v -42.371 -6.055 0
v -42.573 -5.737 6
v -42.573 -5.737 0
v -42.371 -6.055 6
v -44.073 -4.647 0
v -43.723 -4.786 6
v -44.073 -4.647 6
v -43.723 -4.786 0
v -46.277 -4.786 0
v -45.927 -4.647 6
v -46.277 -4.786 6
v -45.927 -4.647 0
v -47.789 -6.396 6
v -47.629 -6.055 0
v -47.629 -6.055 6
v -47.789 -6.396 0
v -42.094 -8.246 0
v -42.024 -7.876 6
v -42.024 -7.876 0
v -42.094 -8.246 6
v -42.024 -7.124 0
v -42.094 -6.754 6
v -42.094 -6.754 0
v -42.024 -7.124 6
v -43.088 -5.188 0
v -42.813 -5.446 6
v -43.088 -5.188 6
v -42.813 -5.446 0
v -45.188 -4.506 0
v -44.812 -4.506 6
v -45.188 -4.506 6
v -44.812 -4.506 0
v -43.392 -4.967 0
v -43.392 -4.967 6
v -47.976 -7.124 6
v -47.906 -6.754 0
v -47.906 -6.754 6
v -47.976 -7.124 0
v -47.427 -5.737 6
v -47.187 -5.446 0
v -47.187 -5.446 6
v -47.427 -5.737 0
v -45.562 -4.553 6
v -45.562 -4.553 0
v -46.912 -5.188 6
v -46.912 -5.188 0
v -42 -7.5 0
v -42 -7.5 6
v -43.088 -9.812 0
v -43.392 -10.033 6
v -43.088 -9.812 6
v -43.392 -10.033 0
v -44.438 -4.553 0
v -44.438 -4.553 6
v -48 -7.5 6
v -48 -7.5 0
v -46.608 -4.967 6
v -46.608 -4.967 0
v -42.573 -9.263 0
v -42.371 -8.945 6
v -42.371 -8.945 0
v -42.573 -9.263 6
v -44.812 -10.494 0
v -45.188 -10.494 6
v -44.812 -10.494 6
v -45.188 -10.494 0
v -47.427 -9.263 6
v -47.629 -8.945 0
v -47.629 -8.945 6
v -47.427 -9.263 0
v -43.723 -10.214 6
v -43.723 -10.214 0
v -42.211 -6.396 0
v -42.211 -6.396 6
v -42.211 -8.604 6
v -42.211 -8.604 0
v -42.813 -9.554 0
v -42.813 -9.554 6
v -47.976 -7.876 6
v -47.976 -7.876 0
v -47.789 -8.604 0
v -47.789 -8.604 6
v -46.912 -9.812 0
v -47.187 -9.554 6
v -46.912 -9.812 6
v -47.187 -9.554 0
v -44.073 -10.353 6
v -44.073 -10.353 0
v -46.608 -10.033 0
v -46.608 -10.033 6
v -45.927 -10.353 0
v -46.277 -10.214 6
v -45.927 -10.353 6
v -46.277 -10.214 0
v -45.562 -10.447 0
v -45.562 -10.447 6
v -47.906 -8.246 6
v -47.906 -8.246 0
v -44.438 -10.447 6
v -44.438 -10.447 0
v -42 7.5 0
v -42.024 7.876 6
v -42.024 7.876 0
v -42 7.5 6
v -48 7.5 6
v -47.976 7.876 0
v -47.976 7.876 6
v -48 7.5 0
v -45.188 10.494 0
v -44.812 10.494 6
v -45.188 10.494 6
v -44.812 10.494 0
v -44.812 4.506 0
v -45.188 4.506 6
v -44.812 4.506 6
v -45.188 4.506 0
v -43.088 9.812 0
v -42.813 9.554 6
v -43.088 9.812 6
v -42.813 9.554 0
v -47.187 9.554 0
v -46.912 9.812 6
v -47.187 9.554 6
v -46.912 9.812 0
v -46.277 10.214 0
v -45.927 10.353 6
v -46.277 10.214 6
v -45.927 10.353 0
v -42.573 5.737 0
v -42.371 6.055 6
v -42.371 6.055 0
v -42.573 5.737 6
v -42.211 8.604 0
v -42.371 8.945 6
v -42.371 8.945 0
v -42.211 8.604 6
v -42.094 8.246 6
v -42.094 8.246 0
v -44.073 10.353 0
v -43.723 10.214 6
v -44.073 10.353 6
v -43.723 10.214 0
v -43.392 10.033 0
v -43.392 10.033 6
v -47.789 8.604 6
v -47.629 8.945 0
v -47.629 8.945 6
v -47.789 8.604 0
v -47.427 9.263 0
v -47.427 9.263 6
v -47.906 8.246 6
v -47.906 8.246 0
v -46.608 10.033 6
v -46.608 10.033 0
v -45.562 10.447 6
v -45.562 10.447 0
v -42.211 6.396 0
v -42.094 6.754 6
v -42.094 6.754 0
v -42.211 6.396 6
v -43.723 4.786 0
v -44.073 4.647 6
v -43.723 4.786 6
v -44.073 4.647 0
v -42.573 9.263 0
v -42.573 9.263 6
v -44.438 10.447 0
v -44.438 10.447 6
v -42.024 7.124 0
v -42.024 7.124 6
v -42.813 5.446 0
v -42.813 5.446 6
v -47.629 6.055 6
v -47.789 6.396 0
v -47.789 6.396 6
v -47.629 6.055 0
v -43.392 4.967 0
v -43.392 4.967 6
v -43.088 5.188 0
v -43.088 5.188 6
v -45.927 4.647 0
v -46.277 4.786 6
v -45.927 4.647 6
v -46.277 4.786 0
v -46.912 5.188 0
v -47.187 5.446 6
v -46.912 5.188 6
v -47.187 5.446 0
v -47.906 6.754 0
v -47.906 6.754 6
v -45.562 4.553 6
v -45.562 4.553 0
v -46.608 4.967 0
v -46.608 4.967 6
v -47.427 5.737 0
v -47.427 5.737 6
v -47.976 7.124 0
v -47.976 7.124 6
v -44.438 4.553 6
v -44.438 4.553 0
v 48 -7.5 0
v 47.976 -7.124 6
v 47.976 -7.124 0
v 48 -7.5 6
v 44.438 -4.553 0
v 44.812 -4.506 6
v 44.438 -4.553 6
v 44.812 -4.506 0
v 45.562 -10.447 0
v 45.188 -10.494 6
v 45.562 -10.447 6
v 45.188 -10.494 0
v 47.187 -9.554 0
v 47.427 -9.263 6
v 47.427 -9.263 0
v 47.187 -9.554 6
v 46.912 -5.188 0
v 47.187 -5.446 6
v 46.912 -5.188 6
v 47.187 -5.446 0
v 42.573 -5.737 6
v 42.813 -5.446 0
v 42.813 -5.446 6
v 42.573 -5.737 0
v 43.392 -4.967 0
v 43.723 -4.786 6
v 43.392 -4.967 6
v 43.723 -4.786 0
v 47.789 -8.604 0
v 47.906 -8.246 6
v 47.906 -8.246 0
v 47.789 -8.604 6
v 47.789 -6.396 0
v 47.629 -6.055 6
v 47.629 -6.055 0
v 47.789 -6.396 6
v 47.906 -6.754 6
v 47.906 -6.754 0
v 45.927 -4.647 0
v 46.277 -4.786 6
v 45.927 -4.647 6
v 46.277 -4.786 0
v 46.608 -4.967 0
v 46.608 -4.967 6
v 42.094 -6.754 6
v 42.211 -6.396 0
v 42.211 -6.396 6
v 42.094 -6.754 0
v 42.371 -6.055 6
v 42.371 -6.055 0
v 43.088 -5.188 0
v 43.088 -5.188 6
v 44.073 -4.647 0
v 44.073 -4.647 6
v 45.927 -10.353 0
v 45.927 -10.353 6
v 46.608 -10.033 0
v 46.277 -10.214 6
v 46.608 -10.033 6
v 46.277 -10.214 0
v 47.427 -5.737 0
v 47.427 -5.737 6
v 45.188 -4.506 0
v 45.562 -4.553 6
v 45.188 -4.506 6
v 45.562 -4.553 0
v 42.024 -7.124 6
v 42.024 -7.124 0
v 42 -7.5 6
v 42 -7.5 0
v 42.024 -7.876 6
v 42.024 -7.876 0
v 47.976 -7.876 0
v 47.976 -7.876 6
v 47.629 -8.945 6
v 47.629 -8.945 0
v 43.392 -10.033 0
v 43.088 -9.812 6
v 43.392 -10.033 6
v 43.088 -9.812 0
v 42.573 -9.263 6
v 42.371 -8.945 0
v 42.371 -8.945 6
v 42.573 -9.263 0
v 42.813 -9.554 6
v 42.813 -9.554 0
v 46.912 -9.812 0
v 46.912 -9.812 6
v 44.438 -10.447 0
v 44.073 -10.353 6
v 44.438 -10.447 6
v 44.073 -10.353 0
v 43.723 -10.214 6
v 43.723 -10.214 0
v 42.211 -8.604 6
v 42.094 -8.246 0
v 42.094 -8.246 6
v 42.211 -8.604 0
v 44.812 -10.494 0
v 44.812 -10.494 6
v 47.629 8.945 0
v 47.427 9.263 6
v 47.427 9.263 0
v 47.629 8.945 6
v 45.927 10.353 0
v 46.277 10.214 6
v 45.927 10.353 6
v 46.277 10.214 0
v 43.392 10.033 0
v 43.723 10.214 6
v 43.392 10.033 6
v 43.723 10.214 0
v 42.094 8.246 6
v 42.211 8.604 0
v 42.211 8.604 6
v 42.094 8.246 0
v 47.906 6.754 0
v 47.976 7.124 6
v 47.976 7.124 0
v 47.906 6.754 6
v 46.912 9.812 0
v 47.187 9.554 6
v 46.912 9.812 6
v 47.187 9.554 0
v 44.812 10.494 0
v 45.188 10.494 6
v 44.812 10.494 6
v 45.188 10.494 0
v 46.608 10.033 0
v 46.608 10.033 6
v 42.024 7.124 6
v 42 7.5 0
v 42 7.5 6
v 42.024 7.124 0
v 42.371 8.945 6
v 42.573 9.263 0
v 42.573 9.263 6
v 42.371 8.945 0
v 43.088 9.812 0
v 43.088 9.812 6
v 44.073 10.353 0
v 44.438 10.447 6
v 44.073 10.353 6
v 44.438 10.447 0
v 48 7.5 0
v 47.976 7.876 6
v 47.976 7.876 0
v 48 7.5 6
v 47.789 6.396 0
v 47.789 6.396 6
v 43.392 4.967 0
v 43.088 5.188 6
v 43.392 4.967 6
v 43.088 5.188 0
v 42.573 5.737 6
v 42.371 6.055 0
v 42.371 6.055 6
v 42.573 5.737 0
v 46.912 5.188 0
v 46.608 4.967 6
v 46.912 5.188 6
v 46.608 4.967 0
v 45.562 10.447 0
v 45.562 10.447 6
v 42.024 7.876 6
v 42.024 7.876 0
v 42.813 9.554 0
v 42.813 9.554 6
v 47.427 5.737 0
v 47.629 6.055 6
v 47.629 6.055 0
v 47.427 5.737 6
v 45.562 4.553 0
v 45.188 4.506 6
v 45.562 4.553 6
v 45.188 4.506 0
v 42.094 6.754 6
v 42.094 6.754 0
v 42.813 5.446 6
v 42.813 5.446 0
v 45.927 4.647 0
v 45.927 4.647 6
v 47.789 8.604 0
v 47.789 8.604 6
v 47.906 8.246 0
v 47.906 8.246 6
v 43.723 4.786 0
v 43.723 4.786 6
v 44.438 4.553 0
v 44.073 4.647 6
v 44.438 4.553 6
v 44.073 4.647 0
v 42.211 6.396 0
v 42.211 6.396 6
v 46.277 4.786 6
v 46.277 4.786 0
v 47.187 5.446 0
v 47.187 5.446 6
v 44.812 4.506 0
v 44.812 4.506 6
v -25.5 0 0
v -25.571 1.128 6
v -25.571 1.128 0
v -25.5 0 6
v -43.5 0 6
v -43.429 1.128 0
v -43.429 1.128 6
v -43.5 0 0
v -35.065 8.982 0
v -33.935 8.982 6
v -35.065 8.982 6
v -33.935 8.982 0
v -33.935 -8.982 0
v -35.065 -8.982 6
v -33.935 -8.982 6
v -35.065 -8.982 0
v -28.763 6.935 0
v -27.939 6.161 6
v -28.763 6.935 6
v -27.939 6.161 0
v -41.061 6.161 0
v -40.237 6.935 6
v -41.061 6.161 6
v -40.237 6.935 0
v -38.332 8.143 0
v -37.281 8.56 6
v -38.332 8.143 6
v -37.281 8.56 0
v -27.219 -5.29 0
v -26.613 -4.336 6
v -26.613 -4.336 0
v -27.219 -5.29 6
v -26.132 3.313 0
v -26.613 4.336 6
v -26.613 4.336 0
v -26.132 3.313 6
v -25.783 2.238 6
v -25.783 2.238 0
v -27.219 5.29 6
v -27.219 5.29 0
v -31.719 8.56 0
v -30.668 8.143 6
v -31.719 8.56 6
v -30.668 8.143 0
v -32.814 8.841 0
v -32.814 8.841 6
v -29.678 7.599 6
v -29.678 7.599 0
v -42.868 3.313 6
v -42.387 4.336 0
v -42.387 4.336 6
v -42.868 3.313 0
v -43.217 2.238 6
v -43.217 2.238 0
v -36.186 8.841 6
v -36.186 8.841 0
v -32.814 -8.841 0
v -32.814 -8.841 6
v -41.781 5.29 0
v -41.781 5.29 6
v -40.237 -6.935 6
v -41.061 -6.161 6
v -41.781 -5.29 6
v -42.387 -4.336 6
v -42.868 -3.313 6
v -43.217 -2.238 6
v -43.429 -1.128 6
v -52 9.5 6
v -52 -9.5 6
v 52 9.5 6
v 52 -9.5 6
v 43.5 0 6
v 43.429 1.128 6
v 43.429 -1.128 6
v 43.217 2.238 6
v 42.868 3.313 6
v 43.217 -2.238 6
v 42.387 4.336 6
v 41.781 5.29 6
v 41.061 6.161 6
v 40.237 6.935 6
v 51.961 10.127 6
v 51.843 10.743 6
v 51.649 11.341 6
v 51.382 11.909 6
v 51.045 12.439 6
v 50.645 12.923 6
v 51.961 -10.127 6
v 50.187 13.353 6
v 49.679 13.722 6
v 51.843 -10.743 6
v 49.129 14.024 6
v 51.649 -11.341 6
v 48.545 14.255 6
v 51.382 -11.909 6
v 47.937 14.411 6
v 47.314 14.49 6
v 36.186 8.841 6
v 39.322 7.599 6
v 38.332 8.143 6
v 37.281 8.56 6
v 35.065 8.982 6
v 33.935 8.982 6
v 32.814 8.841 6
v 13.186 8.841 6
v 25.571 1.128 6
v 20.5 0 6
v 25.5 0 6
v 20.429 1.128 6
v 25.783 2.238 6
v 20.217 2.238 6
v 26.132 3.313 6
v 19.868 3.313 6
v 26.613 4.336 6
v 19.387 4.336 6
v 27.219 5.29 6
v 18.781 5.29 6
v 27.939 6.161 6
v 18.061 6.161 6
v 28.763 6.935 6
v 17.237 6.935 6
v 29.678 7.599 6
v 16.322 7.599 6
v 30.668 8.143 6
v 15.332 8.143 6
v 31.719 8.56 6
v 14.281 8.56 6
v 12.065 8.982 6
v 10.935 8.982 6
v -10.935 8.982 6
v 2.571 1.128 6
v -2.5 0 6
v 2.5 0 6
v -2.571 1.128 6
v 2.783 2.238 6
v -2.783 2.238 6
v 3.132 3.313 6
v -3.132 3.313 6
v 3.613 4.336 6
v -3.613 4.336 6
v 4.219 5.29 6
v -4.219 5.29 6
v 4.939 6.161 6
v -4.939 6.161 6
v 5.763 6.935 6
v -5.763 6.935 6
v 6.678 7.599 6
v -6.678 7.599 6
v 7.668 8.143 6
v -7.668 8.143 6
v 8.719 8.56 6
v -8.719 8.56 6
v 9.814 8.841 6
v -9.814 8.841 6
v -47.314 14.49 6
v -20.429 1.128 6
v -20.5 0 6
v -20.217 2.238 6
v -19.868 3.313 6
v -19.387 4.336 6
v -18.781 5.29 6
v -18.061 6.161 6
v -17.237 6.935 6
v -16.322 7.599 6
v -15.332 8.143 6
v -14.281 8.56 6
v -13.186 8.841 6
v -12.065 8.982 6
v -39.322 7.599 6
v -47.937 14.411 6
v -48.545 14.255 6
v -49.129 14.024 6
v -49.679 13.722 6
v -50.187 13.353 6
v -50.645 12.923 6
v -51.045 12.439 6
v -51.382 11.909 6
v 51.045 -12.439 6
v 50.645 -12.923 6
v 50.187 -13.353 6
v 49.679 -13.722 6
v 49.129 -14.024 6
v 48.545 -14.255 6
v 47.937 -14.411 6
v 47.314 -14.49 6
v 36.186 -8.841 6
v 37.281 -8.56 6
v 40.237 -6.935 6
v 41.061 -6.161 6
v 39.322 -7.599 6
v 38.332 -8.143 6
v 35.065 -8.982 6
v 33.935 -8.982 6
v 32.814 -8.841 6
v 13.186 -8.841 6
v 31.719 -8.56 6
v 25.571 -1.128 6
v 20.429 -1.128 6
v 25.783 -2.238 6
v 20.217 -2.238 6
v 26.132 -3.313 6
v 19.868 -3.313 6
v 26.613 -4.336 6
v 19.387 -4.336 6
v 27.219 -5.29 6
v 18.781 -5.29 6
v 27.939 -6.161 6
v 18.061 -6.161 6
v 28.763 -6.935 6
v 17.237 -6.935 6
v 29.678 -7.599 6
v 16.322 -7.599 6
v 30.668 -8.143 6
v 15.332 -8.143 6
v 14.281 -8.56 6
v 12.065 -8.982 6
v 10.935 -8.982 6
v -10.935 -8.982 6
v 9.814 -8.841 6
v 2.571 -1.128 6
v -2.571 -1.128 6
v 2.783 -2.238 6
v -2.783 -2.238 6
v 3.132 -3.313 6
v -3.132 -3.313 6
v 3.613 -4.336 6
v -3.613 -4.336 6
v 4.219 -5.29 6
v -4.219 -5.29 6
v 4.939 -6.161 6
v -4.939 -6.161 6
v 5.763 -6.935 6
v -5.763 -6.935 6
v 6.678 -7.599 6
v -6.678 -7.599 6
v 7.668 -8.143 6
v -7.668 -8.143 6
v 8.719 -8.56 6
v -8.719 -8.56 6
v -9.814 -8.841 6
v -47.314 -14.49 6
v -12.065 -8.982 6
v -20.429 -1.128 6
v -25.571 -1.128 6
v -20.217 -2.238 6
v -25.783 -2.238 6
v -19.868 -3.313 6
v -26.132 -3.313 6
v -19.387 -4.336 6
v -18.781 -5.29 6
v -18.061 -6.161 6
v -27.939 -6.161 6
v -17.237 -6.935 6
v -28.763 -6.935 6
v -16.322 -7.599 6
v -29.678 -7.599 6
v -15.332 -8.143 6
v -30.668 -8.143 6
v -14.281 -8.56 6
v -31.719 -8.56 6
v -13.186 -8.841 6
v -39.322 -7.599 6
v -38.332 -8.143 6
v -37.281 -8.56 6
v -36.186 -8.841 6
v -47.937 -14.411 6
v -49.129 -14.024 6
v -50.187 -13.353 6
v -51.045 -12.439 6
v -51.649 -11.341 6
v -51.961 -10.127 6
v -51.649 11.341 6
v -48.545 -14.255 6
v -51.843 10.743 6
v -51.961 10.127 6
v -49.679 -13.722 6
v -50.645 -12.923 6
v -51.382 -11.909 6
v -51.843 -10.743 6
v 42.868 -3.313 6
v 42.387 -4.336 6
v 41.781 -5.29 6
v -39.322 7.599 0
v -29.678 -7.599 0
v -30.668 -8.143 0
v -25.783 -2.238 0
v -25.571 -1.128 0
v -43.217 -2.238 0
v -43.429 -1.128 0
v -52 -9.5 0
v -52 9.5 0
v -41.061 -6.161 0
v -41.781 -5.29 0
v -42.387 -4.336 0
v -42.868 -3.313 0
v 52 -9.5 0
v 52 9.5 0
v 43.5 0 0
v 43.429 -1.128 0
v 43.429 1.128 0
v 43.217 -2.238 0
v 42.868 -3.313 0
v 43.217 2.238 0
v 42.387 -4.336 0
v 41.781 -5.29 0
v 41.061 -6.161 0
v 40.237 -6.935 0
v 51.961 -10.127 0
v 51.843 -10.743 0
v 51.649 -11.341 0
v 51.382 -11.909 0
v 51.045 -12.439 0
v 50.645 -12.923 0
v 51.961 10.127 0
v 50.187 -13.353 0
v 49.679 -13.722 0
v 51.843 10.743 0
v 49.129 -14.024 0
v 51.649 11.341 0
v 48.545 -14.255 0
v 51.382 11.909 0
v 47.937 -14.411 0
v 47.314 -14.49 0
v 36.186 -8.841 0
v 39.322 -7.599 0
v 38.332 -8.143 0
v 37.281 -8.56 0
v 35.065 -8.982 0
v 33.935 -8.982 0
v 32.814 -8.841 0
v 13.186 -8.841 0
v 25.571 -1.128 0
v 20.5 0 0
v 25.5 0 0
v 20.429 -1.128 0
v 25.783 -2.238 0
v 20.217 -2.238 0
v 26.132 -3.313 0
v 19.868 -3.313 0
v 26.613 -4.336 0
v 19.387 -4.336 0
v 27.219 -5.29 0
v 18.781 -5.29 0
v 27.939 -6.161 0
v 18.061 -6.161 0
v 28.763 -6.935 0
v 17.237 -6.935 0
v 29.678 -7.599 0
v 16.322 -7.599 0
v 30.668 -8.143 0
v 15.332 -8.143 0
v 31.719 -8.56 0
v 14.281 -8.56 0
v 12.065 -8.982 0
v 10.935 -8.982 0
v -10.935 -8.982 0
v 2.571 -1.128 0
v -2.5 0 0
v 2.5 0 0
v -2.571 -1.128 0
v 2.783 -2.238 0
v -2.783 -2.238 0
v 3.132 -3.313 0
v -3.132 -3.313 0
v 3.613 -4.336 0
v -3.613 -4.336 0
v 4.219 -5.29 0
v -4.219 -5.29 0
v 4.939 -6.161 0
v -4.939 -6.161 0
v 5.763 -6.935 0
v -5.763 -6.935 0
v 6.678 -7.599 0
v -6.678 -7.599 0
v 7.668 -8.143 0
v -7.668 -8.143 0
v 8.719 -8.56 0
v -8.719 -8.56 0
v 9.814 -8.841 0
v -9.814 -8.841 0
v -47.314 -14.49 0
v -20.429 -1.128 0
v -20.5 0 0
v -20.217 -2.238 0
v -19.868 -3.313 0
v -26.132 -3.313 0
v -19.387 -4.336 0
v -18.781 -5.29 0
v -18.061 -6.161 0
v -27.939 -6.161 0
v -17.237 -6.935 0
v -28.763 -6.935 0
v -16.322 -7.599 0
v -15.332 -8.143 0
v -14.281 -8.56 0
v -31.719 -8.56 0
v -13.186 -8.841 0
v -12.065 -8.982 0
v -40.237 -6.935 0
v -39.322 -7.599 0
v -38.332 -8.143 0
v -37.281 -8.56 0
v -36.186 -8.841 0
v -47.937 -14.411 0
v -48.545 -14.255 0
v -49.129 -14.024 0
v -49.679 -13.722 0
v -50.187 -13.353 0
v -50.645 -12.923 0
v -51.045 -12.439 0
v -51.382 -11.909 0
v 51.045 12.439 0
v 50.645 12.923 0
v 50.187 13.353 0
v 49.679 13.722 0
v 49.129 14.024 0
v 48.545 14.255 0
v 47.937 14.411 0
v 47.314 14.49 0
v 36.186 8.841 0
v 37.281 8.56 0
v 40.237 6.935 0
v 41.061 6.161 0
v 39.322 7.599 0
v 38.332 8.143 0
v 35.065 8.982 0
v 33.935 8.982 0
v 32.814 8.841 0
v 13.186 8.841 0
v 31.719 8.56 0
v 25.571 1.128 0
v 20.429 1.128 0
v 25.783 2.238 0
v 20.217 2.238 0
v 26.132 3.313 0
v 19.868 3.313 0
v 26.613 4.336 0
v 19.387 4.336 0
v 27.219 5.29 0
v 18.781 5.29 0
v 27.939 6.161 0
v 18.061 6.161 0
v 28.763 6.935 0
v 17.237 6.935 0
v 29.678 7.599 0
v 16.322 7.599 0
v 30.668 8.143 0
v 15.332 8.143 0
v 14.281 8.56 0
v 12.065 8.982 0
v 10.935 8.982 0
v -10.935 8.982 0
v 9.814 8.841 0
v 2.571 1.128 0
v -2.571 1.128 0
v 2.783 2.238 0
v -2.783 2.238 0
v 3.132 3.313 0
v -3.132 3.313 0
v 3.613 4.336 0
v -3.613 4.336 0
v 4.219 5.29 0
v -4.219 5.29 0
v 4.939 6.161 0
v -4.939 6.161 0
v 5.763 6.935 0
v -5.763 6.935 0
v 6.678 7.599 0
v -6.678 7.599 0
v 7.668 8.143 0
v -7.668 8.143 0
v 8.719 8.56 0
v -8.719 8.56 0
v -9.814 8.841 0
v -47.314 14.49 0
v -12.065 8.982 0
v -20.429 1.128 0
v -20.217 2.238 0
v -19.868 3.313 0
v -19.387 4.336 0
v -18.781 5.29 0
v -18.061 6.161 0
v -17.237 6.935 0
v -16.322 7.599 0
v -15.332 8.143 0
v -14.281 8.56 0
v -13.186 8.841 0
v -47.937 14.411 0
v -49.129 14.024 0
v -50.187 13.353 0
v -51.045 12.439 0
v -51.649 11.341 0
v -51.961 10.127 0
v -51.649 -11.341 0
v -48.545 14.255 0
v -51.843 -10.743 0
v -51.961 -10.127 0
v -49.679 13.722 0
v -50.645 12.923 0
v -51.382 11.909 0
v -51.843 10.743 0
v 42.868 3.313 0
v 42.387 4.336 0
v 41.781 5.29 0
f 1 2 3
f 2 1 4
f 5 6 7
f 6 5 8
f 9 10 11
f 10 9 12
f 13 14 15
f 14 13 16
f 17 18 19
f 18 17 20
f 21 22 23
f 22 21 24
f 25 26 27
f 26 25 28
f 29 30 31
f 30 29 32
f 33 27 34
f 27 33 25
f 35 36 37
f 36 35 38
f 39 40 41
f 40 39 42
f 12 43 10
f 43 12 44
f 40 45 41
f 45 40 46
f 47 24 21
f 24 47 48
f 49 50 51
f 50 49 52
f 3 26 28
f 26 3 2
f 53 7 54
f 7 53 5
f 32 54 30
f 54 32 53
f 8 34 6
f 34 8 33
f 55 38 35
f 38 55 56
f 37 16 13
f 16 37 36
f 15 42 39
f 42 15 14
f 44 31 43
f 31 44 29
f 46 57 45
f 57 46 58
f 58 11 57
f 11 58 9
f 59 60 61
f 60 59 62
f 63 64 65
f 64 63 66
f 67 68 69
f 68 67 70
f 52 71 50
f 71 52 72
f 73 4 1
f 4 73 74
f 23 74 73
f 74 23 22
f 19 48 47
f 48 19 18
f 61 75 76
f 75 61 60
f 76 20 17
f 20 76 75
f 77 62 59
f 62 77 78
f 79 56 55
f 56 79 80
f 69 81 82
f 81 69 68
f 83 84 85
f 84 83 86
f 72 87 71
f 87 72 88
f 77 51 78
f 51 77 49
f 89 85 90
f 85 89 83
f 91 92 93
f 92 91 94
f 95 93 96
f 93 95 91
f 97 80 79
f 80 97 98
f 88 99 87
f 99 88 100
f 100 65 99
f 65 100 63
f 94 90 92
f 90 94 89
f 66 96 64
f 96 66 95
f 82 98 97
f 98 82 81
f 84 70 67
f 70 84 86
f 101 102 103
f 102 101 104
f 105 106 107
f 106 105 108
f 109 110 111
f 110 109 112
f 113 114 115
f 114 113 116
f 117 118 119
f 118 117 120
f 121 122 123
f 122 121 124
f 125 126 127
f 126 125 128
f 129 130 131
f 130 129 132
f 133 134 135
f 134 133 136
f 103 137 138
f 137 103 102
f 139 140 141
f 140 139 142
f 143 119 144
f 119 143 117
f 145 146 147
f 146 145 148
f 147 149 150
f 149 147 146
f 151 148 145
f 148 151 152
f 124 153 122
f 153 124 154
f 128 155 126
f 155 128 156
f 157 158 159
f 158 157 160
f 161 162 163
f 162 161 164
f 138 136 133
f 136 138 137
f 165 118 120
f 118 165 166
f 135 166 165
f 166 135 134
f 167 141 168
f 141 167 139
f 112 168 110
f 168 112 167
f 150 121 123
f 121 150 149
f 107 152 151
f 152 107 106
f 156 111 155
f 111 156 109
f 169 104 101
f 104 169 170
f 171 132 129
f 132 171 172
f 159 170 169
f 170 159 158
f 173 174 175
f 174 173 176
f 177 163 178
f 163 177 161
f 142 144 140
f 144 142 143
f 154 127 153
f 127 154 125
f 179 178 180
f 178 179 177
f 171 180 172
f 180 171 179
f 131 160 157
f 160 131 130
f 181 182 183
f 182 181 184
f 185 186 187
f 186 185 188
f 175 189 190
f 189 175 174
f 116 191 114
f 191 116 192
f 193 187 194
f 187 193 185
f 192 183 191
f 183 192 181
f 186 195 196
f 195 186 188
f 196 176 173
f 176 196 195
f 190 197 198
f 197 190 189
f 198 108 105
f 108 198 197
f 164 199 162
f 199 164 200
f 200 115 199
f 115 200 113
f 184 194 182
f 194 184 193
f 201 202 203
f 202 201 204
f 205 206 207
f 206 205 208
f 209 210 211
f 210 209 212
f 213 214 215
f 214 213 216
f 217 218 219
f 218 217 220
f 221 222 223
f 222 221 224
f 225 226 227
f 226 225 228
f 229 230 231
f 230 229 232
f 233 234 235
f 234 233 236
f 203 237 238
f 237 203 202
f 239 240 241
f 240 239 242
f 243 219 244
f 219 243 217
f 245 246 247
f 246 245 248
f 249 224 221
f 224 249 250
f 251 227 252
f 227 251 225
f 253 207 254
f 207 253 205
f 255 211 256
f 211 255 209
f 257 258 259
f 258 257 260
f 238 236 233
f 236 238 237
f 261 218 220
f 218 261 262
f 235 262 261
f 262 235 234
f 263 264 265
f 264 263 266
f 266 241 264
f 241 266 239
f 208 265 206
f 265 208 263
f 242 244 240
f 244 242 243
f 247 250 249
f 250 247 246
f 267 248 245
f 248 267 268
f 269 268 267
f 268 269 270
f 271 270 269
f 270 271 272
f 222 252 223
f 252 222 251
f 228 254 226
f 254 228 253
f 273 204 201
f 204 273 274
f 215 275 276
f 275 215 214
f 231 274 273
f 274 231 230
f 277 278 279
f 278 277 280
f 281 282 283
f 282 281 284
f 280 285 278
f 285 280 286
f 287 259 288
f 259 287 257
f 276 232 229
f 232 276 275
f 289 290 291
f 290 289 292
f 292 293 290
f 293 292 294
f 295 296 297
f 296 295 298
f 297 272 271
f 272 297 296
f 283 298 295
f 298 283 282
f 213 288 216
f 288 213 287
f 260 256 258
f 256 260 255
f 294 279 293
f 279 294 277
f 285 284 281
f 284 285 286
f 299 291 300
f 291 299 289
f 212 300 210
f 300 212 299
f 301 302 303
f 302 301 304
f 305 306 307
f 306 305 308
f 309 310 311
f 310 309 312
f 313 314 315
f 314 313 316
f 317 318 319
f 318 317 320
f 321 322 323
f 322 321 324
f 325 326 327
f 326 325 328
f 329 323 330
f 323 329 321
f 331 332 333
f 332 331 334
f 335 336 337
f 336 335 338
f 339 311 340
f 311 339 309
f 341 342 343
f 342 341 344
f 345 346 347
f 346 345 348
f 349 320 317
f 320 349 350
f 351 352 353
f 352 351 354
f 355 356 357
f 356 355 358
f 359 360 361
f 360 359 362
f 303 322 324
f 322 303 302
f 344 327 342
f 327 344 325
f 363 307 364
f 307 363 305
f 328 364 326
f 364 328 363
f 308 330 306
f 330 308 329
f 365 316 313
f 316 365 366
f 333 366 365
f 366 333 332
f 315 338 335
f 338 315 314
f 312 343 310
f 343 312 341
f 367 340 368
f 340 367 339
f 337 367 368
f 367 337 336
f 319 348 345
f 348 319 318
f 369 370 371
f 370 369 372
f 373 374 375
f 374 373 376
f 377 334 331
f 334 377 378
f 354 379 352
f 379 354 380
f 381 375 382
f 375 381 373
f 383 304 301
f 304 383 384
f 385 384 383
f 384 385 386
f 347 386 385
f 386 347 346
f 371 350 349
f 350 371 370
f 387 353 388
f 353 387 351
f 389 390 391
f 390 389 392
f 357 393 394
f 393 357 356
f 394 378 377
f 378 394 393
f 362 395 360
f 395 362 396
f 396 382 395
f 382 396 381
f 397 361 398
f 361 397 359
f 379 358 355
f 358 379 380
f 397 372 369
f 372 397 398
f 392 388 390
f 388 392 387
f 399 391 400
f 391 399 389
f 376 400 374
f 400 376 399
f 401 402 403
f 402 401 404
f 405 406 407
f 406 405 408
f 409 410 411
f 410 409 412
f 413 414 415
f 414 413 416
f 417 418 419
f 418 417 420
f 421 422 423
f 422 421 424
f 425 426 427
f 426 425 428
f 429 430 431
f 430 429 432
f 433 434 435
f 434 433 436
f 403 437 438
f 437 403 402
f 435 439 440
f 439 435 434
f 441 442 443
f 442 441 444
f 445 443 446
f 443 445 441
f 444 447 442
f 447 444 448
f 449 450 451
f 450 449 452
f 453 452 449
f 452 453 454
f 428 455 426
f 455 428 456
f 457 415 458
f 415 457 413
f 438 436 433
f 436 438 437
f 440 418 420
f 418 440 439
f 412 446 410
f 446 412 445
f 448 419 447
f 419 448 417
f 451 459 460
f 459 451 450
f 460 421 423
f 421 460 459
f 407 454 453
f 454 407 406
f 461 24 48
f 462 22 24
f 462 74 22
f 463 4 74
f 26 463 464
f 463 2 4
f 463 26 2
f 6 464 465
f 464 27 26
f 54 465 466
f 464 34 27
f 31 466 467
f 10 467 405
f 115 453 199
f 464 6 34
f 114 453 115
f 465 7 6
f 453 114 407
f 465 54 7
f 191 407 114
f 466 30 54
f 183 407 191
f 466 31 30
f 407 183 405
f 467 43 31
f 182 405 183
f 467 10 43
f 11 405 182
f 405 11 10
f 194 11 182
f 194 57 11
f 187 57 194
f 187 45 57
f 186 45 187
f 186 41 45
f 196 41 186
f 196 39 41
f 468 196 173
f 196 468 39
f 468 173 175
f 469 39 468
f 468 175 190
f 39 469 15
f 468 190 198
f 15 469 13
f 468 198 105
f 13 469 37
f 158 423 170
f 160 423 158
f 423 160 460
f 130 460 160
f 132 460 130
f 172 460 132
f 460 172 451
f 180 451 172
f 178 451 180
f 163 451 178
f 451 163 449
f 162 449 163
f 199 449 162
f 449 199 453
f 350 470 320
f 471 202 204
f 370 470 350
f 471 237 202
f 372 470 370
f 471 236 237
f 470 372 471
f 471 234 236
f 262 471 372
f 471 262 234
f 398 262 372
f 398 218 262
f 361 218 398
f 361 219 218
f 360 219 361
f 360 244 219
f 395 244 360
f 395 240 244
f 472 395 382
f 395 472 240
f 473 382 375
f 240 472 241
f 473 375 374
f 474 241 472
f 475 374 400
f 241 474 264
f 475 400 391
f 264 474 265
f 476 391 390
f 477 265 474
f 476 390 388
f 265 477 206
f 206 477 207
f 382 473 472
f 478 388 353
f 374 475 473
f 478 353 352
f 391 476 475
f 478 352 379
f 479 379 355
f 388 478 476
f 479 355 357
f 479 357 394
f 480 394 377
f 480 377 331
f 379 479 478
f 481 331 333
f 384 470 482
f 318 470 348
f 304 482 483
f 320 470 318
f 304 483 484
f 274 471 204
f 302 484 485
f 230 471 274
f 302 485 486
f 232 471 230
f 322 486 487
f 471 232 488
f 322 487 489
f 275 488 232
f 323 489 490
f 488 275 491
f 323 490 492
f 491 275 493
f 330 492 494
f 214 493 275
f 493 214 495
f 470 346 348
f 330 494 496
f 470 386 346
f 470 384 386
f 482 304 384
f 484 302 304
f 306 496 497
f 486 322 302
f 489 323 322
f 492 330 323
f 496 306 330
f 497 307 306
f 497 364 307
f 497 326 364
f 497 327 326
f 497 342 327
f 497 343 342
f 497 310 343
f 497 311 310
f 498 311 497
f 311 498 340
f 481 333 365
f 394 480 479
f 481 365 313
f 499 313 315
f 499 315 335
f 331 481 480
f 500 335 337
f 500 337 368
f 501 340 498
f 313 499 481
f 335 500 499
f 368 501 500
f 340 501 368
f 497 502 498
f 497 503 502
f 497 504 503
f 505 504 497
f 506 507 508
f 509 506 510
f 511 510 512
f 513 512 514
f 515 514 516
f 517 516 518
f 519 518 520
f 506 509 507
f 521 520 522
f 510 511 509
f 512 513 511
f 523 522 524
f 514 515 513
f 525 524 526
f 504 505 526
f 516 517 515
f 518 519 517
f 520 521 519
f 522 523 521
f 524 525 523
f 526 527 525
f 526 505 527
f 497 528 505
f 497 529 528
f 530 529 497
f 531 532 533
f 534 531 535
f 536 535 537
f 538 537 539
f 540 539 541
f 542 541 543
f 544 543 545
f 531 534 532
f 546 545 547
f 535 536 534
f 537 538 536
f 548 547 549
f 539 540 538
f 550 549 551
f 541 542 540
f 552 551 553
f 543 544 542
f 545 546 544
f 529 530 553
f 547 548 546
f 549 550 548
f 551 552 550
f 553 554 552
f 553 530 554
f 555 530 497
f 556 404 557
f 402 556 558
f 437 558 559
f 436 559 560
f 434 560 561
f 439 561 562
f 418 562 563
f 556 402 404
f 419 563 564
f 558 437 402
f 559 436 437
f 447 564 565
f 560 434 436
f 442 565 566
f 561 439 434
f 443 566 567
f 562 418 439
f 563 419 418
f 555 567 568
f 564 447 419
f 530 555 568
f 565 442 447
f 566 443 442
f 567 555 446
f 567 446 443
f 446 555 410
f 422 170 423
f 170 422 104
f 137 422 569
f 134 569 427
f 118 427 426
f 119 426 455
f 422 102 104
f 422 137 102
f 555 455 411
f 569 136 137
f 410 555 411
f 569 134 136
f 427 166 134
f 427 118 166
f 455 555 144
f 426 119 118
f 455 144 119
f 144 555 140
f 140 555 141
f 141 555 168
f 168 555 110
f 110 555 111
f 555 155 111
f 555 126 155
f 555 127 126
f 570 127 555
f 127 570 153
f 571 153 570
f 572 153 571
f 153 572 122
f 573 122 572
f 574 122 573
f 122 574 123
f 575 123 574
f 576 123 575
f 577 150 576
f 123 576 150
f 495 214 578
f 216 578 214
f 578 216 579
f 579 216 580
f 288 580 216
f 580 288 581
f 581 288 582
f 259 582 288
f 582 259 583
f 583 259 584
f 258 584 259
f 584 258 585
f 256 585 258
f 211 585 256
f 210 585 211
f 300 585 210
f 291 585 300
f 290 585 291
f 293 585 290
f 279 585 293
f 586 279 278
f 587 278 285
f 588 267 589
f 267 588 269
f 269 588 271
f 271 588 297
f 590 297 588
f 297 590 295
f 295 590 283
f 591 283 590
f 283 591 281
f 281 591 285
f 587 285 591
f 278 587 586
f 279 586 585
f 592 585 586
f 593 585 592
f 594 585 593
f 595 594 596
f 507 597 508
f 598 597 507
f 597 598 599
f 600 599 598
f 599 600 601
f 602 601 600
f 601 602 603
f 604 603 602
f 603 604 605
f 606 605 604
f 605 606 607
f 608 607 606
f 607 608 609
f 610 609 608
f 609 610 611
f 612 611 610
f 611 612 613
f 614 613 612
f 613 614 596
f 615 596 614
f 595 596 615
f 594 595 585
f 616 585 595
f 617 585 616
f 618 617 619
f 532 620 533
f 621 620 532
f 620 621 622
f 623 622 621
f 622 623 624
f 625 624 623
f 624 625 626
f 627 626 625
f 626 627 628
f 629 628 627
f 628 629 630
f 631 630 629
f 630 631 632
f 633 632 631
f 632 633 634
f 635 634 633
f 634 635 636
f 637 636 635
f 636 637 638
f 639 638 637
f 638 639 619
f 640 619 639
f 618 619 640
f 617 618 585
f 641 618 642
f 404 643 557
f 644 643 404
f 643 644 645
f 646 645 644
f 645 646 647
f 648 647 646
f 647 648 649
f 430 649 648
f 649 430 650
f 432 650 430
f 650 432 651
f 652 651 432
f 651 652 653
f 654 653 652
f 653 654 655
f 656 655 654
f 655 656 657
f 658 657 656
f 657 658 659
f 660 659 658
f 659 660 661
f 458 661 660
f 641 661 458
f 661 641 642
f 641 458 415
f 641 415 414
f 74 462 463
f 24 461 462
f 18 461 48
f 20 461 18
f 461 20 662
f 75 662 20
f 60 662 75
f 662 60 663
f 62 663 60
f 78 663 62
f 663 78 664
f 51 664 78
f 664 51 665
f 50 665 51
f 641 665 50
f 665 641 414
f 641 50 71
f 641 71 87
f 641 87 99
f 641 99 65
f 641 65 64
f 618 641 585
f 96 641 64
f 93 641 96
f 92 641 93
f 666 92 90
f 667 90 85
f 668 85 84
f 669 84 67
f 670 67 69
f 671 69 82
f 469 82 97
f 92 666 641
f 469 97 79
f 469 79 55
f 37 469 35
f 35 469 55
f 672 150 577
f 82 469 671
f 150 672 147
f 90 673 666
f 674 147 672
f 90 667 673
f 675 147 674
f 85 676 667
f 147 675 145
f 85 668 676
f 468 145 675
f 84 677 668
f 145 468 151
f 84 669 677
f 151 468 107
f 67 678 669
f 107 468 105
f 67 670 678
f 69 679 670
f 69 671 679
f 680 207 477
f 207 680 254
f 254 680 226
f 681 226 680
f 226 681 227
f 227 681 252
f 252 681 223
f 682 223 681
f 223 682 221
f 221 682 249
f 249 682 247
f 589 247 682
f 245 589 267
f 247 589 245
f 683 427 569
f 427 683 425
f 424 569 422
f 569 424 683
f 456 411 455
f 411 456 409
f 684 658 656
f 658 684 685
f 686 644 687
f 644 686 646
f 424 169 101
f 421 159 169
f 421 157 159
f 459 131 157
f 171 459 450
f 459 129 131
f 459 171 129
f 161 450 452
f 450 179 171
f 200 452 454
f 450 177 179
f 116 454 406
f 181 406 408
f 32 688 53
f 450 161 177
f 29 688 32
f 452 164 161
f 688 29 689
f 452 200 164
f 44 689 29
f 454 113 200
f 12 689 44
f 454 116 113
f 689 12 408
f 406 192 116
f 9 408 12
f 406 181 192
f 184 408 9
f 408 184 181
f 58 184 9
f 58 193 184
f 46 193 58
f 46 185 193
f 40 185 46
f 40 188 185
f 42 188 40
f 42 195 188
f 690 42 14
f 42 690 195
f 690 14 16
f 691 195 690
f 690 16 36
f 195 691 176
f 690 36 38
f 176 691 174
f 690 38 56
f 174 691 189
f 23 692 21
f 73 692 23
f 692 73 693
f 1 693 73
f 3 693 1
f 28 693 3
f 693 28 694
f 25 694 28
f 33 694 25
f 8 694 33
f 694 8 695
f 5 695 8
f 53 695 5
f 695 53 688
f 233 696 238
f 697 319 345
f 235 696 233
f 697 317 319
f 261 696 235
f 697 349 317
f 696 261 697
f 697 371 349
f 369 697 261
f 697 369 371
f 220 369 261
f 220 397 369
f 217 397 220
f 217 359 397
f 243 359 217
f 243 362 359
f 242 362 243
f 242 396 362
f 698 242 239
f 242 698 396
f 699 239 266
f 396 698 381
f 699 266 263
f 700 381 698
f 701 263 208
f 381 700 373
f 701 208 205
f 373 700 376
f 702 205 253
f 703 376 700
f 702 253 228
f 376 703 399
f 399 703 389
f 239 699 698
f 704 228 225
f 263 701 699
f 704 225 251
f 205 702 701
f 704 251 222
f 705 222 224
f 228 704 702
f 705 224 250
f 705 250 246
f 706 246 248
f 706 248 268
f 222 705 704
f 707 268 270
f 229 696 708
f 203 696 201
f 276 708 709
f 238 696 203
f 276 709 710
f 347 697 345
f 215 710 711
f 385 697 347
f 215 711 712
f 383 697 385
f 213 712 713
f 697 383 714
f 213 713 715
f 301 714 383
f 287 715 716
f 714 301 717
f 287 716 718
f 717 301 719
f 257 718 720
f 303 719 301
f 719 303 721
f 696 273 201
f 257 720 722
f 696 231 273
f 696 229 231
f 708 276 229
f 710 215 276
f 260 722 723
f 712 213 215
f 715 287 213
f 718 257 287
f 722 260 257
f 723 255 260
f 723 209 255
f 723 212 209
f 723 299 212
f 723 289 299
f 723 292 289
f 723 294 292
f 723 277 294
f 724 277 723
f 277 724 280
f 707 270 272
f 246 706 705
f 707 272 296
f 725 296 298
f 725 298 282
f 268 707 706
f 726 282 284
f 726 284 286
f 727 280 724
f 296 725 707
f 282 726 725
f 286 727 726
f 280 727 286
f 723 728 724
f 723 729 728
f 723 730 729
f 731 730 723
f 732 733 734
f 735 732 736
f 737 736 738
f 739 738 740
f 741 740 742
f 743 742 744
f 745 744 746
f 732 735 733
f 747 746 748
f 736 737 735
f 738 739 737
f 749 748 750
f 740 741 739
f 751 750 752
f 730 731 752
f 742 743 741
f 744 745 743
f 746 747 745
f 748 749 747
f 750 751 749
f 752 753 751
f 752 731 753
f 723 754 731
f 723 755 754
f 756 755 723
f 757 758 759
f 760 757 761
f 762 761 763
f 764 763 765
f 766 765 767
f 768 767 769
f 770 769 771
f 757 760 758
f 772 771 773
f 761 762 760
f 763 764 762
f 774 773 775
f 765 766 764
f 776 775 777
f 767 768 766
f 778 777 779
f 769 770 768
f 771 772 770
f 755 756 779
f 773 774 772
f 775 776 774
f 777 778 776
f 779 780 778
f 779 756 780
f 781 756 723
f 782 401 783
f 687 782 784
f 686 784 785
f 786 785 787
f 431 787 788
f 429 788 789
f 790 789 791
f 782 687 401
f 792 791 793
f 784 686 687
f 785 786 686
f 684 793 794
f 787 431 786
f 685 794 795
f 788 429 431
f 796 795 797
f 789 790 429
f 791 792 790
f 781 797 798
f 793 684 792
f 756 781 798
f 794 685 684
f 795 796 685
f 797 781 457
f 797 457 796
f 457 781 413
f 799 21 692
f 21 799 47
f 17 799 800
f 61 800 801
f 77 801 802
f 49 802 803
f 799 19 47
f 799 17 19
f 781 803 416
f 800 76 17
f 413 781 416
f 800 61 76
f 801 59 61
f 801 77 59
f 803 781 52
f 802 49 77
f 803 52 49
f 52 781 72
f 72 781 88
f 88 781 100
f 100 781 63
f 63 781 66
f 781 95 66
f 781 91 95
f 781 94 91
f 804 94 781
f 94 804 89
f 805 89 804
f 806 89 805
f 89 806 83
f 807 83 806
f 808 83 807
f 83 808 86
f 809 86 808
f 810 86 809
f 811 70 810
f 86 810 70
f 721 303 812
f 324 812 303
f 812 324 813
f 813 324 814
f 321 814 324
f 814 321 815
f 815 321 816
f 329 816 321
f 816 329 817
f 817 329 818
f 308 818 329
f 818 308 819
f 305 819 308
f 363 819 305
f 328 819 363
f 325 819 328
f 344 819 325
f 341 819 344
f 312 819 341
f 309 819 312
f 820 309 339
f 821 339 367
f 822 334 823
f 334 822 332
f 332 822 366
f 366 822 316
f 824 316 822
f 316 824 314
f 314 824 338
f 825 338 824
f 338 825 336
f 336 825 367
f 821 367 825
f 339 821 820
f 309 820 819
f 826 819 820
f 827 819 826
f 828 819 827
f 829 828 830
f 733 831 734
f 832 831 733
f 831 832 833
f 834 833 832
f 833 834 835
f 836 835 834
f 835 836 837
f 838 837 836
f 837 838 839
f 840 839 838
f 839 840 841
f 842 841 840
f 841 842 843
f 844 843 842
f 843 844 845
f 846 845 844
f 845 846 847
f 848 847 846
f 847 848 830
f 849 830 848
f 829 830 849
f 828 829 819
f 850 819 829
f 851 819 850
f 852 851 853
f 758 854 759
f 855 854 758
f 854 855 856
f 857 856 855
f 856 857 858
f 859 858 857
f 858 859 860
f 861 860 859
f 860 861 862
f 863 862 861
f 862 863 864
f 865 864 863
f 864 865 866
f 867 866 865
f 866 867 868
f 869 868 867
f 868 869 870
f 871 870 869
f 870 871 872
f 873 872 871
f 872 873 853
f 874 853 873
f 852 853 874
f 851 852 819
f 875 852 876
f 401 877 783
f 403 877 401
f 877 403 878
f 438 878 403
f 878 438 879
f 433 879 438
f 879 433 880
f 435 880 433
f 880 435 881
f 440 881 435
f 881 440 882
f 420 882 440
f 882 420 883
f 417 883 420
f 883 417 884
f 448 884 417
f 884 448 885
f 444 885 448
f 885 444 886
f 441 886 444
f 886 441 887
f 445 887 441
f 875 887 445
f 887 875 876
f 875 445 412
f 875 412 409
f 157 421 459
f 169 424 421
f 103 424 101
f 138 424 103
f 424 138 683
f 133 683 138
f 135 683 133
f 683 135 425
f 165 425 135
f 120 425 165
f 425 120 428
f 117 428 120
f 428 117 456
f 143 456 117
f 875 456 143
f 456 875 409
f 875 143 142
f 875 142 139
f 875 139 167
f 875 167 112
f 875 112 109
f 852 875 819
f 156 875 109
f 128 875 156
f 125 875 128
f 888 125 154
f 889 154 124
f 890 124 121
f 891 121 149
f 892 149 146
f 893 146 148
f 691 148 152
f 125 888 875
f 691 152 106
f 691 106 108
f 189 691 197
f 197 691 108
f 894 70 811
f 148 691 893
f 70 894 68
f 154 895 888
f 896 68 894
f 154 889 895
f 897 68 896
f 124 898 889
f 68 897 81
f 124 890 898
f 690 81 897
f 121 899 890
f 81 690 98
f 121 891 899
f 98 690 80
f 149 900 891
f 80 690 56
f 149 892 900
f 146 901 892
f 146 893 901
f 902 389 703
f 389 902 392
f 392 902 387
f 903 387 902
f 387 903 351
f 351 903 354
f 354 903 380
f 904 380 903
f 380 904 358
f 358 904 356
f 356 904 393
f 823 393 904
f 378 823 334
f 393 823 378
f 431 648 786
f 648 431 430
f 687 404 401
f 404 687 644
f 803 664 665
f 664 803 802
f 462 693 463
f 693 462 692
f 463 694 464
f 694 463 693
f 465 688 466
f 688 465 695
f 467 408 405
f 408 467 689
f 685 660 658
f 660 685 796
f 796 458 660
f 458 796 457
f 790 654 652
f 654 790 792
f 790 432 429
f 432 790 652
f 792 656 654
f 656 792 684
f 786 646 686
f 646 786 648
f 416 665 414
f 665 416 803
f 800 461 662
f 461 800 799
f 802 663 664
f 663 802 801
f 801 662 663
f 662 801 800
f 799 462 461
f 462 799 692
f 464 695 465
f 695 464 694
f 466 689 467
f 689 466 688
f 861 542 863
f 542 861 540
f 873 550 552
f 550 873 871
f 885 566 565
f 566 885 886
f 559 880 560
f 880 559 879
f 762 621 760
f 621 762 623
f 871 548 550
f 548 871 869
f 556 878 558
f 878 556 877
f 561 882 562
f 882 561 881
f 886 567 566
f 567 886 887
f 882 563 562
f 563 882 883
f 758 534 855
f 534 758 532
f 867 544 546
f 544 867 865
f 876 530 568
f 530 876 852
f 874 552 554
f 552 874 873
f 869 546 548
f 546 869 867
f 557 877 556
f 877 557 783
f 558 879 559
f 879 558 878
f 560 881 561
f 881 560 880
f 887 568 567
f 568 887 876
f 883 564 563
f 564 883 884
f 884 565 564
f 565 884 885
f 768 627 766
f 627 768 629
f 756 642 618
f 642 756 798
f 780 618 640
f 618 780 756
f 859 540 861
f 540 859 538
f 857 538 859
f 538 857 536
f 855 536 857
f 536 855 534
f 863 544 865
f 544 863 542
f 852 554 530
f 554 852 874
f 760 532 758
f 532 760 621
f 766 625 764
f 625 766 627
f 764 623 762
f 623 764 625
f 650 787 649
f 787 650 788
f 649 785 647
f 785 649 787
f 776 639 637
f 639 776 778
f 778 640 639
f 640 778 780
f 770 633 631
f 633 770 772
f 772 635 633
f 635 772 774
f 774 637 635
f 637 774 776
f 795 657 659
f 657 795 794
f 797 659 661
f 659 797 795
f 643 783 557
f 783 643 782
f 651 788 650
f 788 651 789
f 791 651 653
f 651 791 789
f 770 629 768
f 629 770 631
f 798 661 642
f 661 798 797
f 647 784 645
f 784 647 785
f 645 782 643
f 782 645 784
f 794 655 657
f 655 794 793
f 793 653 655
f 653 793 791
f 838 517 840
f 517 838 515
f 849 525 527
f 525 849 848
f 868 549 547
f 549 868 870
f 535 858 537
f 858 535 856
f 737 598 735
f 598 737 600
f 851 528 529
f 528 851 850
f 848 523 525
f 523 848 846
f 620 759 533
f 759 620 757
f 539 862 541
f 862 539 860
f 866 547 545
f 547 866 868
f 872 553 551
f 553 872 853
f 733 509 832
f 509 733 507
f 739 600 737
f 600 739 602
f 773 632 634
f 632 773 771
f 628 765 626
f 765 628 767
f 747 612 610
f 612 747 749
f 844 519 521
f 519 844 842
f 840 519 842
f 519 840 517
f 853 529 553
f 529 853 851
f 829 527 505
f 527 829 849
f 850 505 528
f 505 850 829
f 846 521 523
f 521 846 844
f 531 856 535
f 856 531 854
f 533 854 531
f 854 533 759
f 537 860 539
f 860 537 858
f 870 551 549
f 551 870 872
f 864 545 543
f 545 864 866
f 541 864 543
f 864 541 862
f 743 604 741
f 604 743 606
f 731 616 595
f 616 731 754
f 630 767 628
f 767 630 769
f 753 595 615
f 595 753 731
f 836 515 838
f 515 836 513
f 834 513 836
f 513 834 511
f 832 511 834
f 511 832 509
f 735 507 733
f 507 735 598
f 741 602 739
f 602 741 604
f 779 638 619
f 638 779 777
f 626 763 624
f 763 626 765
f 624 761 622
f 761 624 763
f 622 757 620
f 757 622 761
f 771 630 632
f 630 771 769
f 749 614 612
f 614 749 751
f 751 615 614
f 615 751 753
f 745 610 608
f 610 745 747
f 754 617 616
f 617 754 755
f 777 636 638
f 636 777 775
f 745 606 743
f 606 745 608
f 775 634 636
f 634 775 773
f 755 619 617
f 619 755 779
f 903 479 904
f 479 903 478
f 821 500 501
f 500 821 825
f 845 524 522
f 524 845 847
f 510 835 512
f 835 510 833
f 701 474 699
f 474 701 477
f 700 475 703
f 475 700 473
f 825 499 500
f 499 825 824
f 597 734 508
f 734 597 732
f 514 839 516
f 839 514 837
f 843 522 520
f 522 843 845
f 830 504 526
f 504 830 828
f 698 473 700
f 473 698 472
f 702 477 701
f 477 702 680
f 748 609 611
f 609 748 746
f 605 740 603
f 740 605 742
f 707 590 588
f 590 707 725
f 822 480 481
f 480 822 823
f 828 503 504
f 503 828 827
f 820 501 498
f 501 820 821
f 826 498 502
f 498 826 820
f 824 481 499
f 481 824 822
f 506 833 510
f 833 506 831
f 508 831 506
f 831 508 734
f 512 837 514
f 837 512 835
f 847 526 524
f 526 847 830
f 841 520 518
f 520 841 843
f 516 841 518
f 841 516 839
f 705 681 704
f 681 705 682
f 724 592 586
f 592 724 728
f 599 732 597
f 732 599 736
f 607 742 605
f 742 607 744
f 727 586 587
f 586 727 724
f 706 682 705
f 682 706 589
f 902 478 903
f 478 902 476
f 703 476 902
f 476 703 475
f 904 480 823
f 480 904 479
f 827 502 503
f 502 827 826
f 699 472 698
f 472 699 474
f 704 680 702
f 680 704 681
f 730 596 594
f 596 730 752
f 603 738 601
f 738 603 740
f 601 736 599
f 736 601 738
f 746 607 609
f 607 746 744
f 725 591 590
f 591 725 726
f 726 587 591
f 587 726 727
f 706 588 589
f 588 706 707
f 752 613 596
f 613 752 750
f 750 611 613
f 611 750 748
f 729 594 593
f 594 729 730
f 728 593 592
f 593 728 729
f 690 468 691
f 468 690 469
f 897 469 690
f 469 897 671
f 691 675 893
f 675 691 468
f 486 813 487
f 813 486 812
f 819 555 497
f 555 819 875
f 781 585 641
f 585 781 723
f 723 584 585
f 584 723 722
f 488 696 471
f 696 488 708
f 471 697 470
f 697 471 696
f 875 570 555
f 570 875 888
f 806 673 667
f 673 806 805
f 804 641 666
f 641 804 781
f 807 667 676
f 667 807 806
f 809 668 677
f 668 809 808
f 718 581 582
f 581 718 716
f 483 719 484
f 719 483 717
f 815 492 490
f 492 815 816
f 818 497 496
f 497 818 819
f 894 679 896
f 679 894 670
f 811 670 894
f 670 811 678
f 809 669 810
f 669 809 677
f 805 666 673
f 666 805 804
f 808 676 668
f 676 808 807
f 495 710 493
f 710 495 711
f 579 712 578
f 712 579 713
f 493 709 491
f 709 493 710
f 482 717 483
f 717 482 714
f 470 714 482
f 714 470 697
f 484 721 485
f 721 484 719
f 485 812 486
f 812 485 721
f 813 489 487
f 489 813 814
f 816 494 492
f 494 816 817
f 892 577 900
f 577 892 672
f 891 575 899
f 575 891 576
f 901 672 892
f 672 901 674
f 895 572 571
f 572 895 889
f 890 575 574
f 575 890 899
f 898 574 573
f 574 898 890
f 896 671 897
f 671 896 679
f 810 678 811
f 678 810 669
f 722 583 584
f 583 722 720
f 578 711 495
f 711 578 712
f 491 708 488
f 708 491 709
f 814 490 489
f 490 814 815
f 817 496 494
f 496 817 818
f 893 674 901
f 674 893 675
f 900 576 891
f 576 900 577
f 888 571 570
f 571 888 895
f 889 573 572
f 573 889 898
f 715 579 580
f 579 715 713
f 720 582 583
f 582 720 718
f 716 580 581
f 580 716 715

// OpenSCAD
$fn = 50;


difference() {
	union() {
		hull() {
			translate(v = [-47.0000000000, 9.5000000000, 0]) {
				cylinder(h = 6, r = 5);
			}
			translate(v = [47.0000000000, 9.5000000000, 0]) {
				cylinder(h = 6, r = 5);
			}
			translate(v = [-47.0000000000, -9.5000000000, 0]) {
				cylinder(h = 6, r = 5);
			}
			translate(v = [47.0000000000, -9.5000000000, 0]) {
				cylinder(h = 6, r = 5);
			}
		}
	}
	union() {
		#translate(v = [-45.0000000000, -7.5000000000, -100.0000000000]) {
			cylinder(h = 200, r = 3.0000000000);
		}
		#translate(v = [-45.0000000000, 7.5000000000, -100.0000000000]) {
			cylinder(h = 200, r = 3.0000000000);
		}
		#translate(v = [45.0000000000, -7.5000000000, -100.0000000000]) {
			cylinder(h = 200, r = 3.0000000000);
		}
		#translate(v = [45.0000000000, 7.5000000000, -100.0000000000]) {
			cylinder(h = 200, r = 3.0000000000);
		}
		#translate(v = [-34.5000000000, 0, 0]) {
			cylinder(h = 6, r = 9.0000000000);
		}
		#translate(v = [-11.5000000000, 0, 0]) {
			cylinder(h = 6, r = 9.0000000000);
		}
		#translate(v = [11.5000000000, 0, 0]) {
			cylinder(h = 6, r = 9.0000000000);
		}
		#translate(v = [34.5000000000, 0, 0]) {
			cylinder(h = 6, r = 9.0000000000);
		}
	}
}
